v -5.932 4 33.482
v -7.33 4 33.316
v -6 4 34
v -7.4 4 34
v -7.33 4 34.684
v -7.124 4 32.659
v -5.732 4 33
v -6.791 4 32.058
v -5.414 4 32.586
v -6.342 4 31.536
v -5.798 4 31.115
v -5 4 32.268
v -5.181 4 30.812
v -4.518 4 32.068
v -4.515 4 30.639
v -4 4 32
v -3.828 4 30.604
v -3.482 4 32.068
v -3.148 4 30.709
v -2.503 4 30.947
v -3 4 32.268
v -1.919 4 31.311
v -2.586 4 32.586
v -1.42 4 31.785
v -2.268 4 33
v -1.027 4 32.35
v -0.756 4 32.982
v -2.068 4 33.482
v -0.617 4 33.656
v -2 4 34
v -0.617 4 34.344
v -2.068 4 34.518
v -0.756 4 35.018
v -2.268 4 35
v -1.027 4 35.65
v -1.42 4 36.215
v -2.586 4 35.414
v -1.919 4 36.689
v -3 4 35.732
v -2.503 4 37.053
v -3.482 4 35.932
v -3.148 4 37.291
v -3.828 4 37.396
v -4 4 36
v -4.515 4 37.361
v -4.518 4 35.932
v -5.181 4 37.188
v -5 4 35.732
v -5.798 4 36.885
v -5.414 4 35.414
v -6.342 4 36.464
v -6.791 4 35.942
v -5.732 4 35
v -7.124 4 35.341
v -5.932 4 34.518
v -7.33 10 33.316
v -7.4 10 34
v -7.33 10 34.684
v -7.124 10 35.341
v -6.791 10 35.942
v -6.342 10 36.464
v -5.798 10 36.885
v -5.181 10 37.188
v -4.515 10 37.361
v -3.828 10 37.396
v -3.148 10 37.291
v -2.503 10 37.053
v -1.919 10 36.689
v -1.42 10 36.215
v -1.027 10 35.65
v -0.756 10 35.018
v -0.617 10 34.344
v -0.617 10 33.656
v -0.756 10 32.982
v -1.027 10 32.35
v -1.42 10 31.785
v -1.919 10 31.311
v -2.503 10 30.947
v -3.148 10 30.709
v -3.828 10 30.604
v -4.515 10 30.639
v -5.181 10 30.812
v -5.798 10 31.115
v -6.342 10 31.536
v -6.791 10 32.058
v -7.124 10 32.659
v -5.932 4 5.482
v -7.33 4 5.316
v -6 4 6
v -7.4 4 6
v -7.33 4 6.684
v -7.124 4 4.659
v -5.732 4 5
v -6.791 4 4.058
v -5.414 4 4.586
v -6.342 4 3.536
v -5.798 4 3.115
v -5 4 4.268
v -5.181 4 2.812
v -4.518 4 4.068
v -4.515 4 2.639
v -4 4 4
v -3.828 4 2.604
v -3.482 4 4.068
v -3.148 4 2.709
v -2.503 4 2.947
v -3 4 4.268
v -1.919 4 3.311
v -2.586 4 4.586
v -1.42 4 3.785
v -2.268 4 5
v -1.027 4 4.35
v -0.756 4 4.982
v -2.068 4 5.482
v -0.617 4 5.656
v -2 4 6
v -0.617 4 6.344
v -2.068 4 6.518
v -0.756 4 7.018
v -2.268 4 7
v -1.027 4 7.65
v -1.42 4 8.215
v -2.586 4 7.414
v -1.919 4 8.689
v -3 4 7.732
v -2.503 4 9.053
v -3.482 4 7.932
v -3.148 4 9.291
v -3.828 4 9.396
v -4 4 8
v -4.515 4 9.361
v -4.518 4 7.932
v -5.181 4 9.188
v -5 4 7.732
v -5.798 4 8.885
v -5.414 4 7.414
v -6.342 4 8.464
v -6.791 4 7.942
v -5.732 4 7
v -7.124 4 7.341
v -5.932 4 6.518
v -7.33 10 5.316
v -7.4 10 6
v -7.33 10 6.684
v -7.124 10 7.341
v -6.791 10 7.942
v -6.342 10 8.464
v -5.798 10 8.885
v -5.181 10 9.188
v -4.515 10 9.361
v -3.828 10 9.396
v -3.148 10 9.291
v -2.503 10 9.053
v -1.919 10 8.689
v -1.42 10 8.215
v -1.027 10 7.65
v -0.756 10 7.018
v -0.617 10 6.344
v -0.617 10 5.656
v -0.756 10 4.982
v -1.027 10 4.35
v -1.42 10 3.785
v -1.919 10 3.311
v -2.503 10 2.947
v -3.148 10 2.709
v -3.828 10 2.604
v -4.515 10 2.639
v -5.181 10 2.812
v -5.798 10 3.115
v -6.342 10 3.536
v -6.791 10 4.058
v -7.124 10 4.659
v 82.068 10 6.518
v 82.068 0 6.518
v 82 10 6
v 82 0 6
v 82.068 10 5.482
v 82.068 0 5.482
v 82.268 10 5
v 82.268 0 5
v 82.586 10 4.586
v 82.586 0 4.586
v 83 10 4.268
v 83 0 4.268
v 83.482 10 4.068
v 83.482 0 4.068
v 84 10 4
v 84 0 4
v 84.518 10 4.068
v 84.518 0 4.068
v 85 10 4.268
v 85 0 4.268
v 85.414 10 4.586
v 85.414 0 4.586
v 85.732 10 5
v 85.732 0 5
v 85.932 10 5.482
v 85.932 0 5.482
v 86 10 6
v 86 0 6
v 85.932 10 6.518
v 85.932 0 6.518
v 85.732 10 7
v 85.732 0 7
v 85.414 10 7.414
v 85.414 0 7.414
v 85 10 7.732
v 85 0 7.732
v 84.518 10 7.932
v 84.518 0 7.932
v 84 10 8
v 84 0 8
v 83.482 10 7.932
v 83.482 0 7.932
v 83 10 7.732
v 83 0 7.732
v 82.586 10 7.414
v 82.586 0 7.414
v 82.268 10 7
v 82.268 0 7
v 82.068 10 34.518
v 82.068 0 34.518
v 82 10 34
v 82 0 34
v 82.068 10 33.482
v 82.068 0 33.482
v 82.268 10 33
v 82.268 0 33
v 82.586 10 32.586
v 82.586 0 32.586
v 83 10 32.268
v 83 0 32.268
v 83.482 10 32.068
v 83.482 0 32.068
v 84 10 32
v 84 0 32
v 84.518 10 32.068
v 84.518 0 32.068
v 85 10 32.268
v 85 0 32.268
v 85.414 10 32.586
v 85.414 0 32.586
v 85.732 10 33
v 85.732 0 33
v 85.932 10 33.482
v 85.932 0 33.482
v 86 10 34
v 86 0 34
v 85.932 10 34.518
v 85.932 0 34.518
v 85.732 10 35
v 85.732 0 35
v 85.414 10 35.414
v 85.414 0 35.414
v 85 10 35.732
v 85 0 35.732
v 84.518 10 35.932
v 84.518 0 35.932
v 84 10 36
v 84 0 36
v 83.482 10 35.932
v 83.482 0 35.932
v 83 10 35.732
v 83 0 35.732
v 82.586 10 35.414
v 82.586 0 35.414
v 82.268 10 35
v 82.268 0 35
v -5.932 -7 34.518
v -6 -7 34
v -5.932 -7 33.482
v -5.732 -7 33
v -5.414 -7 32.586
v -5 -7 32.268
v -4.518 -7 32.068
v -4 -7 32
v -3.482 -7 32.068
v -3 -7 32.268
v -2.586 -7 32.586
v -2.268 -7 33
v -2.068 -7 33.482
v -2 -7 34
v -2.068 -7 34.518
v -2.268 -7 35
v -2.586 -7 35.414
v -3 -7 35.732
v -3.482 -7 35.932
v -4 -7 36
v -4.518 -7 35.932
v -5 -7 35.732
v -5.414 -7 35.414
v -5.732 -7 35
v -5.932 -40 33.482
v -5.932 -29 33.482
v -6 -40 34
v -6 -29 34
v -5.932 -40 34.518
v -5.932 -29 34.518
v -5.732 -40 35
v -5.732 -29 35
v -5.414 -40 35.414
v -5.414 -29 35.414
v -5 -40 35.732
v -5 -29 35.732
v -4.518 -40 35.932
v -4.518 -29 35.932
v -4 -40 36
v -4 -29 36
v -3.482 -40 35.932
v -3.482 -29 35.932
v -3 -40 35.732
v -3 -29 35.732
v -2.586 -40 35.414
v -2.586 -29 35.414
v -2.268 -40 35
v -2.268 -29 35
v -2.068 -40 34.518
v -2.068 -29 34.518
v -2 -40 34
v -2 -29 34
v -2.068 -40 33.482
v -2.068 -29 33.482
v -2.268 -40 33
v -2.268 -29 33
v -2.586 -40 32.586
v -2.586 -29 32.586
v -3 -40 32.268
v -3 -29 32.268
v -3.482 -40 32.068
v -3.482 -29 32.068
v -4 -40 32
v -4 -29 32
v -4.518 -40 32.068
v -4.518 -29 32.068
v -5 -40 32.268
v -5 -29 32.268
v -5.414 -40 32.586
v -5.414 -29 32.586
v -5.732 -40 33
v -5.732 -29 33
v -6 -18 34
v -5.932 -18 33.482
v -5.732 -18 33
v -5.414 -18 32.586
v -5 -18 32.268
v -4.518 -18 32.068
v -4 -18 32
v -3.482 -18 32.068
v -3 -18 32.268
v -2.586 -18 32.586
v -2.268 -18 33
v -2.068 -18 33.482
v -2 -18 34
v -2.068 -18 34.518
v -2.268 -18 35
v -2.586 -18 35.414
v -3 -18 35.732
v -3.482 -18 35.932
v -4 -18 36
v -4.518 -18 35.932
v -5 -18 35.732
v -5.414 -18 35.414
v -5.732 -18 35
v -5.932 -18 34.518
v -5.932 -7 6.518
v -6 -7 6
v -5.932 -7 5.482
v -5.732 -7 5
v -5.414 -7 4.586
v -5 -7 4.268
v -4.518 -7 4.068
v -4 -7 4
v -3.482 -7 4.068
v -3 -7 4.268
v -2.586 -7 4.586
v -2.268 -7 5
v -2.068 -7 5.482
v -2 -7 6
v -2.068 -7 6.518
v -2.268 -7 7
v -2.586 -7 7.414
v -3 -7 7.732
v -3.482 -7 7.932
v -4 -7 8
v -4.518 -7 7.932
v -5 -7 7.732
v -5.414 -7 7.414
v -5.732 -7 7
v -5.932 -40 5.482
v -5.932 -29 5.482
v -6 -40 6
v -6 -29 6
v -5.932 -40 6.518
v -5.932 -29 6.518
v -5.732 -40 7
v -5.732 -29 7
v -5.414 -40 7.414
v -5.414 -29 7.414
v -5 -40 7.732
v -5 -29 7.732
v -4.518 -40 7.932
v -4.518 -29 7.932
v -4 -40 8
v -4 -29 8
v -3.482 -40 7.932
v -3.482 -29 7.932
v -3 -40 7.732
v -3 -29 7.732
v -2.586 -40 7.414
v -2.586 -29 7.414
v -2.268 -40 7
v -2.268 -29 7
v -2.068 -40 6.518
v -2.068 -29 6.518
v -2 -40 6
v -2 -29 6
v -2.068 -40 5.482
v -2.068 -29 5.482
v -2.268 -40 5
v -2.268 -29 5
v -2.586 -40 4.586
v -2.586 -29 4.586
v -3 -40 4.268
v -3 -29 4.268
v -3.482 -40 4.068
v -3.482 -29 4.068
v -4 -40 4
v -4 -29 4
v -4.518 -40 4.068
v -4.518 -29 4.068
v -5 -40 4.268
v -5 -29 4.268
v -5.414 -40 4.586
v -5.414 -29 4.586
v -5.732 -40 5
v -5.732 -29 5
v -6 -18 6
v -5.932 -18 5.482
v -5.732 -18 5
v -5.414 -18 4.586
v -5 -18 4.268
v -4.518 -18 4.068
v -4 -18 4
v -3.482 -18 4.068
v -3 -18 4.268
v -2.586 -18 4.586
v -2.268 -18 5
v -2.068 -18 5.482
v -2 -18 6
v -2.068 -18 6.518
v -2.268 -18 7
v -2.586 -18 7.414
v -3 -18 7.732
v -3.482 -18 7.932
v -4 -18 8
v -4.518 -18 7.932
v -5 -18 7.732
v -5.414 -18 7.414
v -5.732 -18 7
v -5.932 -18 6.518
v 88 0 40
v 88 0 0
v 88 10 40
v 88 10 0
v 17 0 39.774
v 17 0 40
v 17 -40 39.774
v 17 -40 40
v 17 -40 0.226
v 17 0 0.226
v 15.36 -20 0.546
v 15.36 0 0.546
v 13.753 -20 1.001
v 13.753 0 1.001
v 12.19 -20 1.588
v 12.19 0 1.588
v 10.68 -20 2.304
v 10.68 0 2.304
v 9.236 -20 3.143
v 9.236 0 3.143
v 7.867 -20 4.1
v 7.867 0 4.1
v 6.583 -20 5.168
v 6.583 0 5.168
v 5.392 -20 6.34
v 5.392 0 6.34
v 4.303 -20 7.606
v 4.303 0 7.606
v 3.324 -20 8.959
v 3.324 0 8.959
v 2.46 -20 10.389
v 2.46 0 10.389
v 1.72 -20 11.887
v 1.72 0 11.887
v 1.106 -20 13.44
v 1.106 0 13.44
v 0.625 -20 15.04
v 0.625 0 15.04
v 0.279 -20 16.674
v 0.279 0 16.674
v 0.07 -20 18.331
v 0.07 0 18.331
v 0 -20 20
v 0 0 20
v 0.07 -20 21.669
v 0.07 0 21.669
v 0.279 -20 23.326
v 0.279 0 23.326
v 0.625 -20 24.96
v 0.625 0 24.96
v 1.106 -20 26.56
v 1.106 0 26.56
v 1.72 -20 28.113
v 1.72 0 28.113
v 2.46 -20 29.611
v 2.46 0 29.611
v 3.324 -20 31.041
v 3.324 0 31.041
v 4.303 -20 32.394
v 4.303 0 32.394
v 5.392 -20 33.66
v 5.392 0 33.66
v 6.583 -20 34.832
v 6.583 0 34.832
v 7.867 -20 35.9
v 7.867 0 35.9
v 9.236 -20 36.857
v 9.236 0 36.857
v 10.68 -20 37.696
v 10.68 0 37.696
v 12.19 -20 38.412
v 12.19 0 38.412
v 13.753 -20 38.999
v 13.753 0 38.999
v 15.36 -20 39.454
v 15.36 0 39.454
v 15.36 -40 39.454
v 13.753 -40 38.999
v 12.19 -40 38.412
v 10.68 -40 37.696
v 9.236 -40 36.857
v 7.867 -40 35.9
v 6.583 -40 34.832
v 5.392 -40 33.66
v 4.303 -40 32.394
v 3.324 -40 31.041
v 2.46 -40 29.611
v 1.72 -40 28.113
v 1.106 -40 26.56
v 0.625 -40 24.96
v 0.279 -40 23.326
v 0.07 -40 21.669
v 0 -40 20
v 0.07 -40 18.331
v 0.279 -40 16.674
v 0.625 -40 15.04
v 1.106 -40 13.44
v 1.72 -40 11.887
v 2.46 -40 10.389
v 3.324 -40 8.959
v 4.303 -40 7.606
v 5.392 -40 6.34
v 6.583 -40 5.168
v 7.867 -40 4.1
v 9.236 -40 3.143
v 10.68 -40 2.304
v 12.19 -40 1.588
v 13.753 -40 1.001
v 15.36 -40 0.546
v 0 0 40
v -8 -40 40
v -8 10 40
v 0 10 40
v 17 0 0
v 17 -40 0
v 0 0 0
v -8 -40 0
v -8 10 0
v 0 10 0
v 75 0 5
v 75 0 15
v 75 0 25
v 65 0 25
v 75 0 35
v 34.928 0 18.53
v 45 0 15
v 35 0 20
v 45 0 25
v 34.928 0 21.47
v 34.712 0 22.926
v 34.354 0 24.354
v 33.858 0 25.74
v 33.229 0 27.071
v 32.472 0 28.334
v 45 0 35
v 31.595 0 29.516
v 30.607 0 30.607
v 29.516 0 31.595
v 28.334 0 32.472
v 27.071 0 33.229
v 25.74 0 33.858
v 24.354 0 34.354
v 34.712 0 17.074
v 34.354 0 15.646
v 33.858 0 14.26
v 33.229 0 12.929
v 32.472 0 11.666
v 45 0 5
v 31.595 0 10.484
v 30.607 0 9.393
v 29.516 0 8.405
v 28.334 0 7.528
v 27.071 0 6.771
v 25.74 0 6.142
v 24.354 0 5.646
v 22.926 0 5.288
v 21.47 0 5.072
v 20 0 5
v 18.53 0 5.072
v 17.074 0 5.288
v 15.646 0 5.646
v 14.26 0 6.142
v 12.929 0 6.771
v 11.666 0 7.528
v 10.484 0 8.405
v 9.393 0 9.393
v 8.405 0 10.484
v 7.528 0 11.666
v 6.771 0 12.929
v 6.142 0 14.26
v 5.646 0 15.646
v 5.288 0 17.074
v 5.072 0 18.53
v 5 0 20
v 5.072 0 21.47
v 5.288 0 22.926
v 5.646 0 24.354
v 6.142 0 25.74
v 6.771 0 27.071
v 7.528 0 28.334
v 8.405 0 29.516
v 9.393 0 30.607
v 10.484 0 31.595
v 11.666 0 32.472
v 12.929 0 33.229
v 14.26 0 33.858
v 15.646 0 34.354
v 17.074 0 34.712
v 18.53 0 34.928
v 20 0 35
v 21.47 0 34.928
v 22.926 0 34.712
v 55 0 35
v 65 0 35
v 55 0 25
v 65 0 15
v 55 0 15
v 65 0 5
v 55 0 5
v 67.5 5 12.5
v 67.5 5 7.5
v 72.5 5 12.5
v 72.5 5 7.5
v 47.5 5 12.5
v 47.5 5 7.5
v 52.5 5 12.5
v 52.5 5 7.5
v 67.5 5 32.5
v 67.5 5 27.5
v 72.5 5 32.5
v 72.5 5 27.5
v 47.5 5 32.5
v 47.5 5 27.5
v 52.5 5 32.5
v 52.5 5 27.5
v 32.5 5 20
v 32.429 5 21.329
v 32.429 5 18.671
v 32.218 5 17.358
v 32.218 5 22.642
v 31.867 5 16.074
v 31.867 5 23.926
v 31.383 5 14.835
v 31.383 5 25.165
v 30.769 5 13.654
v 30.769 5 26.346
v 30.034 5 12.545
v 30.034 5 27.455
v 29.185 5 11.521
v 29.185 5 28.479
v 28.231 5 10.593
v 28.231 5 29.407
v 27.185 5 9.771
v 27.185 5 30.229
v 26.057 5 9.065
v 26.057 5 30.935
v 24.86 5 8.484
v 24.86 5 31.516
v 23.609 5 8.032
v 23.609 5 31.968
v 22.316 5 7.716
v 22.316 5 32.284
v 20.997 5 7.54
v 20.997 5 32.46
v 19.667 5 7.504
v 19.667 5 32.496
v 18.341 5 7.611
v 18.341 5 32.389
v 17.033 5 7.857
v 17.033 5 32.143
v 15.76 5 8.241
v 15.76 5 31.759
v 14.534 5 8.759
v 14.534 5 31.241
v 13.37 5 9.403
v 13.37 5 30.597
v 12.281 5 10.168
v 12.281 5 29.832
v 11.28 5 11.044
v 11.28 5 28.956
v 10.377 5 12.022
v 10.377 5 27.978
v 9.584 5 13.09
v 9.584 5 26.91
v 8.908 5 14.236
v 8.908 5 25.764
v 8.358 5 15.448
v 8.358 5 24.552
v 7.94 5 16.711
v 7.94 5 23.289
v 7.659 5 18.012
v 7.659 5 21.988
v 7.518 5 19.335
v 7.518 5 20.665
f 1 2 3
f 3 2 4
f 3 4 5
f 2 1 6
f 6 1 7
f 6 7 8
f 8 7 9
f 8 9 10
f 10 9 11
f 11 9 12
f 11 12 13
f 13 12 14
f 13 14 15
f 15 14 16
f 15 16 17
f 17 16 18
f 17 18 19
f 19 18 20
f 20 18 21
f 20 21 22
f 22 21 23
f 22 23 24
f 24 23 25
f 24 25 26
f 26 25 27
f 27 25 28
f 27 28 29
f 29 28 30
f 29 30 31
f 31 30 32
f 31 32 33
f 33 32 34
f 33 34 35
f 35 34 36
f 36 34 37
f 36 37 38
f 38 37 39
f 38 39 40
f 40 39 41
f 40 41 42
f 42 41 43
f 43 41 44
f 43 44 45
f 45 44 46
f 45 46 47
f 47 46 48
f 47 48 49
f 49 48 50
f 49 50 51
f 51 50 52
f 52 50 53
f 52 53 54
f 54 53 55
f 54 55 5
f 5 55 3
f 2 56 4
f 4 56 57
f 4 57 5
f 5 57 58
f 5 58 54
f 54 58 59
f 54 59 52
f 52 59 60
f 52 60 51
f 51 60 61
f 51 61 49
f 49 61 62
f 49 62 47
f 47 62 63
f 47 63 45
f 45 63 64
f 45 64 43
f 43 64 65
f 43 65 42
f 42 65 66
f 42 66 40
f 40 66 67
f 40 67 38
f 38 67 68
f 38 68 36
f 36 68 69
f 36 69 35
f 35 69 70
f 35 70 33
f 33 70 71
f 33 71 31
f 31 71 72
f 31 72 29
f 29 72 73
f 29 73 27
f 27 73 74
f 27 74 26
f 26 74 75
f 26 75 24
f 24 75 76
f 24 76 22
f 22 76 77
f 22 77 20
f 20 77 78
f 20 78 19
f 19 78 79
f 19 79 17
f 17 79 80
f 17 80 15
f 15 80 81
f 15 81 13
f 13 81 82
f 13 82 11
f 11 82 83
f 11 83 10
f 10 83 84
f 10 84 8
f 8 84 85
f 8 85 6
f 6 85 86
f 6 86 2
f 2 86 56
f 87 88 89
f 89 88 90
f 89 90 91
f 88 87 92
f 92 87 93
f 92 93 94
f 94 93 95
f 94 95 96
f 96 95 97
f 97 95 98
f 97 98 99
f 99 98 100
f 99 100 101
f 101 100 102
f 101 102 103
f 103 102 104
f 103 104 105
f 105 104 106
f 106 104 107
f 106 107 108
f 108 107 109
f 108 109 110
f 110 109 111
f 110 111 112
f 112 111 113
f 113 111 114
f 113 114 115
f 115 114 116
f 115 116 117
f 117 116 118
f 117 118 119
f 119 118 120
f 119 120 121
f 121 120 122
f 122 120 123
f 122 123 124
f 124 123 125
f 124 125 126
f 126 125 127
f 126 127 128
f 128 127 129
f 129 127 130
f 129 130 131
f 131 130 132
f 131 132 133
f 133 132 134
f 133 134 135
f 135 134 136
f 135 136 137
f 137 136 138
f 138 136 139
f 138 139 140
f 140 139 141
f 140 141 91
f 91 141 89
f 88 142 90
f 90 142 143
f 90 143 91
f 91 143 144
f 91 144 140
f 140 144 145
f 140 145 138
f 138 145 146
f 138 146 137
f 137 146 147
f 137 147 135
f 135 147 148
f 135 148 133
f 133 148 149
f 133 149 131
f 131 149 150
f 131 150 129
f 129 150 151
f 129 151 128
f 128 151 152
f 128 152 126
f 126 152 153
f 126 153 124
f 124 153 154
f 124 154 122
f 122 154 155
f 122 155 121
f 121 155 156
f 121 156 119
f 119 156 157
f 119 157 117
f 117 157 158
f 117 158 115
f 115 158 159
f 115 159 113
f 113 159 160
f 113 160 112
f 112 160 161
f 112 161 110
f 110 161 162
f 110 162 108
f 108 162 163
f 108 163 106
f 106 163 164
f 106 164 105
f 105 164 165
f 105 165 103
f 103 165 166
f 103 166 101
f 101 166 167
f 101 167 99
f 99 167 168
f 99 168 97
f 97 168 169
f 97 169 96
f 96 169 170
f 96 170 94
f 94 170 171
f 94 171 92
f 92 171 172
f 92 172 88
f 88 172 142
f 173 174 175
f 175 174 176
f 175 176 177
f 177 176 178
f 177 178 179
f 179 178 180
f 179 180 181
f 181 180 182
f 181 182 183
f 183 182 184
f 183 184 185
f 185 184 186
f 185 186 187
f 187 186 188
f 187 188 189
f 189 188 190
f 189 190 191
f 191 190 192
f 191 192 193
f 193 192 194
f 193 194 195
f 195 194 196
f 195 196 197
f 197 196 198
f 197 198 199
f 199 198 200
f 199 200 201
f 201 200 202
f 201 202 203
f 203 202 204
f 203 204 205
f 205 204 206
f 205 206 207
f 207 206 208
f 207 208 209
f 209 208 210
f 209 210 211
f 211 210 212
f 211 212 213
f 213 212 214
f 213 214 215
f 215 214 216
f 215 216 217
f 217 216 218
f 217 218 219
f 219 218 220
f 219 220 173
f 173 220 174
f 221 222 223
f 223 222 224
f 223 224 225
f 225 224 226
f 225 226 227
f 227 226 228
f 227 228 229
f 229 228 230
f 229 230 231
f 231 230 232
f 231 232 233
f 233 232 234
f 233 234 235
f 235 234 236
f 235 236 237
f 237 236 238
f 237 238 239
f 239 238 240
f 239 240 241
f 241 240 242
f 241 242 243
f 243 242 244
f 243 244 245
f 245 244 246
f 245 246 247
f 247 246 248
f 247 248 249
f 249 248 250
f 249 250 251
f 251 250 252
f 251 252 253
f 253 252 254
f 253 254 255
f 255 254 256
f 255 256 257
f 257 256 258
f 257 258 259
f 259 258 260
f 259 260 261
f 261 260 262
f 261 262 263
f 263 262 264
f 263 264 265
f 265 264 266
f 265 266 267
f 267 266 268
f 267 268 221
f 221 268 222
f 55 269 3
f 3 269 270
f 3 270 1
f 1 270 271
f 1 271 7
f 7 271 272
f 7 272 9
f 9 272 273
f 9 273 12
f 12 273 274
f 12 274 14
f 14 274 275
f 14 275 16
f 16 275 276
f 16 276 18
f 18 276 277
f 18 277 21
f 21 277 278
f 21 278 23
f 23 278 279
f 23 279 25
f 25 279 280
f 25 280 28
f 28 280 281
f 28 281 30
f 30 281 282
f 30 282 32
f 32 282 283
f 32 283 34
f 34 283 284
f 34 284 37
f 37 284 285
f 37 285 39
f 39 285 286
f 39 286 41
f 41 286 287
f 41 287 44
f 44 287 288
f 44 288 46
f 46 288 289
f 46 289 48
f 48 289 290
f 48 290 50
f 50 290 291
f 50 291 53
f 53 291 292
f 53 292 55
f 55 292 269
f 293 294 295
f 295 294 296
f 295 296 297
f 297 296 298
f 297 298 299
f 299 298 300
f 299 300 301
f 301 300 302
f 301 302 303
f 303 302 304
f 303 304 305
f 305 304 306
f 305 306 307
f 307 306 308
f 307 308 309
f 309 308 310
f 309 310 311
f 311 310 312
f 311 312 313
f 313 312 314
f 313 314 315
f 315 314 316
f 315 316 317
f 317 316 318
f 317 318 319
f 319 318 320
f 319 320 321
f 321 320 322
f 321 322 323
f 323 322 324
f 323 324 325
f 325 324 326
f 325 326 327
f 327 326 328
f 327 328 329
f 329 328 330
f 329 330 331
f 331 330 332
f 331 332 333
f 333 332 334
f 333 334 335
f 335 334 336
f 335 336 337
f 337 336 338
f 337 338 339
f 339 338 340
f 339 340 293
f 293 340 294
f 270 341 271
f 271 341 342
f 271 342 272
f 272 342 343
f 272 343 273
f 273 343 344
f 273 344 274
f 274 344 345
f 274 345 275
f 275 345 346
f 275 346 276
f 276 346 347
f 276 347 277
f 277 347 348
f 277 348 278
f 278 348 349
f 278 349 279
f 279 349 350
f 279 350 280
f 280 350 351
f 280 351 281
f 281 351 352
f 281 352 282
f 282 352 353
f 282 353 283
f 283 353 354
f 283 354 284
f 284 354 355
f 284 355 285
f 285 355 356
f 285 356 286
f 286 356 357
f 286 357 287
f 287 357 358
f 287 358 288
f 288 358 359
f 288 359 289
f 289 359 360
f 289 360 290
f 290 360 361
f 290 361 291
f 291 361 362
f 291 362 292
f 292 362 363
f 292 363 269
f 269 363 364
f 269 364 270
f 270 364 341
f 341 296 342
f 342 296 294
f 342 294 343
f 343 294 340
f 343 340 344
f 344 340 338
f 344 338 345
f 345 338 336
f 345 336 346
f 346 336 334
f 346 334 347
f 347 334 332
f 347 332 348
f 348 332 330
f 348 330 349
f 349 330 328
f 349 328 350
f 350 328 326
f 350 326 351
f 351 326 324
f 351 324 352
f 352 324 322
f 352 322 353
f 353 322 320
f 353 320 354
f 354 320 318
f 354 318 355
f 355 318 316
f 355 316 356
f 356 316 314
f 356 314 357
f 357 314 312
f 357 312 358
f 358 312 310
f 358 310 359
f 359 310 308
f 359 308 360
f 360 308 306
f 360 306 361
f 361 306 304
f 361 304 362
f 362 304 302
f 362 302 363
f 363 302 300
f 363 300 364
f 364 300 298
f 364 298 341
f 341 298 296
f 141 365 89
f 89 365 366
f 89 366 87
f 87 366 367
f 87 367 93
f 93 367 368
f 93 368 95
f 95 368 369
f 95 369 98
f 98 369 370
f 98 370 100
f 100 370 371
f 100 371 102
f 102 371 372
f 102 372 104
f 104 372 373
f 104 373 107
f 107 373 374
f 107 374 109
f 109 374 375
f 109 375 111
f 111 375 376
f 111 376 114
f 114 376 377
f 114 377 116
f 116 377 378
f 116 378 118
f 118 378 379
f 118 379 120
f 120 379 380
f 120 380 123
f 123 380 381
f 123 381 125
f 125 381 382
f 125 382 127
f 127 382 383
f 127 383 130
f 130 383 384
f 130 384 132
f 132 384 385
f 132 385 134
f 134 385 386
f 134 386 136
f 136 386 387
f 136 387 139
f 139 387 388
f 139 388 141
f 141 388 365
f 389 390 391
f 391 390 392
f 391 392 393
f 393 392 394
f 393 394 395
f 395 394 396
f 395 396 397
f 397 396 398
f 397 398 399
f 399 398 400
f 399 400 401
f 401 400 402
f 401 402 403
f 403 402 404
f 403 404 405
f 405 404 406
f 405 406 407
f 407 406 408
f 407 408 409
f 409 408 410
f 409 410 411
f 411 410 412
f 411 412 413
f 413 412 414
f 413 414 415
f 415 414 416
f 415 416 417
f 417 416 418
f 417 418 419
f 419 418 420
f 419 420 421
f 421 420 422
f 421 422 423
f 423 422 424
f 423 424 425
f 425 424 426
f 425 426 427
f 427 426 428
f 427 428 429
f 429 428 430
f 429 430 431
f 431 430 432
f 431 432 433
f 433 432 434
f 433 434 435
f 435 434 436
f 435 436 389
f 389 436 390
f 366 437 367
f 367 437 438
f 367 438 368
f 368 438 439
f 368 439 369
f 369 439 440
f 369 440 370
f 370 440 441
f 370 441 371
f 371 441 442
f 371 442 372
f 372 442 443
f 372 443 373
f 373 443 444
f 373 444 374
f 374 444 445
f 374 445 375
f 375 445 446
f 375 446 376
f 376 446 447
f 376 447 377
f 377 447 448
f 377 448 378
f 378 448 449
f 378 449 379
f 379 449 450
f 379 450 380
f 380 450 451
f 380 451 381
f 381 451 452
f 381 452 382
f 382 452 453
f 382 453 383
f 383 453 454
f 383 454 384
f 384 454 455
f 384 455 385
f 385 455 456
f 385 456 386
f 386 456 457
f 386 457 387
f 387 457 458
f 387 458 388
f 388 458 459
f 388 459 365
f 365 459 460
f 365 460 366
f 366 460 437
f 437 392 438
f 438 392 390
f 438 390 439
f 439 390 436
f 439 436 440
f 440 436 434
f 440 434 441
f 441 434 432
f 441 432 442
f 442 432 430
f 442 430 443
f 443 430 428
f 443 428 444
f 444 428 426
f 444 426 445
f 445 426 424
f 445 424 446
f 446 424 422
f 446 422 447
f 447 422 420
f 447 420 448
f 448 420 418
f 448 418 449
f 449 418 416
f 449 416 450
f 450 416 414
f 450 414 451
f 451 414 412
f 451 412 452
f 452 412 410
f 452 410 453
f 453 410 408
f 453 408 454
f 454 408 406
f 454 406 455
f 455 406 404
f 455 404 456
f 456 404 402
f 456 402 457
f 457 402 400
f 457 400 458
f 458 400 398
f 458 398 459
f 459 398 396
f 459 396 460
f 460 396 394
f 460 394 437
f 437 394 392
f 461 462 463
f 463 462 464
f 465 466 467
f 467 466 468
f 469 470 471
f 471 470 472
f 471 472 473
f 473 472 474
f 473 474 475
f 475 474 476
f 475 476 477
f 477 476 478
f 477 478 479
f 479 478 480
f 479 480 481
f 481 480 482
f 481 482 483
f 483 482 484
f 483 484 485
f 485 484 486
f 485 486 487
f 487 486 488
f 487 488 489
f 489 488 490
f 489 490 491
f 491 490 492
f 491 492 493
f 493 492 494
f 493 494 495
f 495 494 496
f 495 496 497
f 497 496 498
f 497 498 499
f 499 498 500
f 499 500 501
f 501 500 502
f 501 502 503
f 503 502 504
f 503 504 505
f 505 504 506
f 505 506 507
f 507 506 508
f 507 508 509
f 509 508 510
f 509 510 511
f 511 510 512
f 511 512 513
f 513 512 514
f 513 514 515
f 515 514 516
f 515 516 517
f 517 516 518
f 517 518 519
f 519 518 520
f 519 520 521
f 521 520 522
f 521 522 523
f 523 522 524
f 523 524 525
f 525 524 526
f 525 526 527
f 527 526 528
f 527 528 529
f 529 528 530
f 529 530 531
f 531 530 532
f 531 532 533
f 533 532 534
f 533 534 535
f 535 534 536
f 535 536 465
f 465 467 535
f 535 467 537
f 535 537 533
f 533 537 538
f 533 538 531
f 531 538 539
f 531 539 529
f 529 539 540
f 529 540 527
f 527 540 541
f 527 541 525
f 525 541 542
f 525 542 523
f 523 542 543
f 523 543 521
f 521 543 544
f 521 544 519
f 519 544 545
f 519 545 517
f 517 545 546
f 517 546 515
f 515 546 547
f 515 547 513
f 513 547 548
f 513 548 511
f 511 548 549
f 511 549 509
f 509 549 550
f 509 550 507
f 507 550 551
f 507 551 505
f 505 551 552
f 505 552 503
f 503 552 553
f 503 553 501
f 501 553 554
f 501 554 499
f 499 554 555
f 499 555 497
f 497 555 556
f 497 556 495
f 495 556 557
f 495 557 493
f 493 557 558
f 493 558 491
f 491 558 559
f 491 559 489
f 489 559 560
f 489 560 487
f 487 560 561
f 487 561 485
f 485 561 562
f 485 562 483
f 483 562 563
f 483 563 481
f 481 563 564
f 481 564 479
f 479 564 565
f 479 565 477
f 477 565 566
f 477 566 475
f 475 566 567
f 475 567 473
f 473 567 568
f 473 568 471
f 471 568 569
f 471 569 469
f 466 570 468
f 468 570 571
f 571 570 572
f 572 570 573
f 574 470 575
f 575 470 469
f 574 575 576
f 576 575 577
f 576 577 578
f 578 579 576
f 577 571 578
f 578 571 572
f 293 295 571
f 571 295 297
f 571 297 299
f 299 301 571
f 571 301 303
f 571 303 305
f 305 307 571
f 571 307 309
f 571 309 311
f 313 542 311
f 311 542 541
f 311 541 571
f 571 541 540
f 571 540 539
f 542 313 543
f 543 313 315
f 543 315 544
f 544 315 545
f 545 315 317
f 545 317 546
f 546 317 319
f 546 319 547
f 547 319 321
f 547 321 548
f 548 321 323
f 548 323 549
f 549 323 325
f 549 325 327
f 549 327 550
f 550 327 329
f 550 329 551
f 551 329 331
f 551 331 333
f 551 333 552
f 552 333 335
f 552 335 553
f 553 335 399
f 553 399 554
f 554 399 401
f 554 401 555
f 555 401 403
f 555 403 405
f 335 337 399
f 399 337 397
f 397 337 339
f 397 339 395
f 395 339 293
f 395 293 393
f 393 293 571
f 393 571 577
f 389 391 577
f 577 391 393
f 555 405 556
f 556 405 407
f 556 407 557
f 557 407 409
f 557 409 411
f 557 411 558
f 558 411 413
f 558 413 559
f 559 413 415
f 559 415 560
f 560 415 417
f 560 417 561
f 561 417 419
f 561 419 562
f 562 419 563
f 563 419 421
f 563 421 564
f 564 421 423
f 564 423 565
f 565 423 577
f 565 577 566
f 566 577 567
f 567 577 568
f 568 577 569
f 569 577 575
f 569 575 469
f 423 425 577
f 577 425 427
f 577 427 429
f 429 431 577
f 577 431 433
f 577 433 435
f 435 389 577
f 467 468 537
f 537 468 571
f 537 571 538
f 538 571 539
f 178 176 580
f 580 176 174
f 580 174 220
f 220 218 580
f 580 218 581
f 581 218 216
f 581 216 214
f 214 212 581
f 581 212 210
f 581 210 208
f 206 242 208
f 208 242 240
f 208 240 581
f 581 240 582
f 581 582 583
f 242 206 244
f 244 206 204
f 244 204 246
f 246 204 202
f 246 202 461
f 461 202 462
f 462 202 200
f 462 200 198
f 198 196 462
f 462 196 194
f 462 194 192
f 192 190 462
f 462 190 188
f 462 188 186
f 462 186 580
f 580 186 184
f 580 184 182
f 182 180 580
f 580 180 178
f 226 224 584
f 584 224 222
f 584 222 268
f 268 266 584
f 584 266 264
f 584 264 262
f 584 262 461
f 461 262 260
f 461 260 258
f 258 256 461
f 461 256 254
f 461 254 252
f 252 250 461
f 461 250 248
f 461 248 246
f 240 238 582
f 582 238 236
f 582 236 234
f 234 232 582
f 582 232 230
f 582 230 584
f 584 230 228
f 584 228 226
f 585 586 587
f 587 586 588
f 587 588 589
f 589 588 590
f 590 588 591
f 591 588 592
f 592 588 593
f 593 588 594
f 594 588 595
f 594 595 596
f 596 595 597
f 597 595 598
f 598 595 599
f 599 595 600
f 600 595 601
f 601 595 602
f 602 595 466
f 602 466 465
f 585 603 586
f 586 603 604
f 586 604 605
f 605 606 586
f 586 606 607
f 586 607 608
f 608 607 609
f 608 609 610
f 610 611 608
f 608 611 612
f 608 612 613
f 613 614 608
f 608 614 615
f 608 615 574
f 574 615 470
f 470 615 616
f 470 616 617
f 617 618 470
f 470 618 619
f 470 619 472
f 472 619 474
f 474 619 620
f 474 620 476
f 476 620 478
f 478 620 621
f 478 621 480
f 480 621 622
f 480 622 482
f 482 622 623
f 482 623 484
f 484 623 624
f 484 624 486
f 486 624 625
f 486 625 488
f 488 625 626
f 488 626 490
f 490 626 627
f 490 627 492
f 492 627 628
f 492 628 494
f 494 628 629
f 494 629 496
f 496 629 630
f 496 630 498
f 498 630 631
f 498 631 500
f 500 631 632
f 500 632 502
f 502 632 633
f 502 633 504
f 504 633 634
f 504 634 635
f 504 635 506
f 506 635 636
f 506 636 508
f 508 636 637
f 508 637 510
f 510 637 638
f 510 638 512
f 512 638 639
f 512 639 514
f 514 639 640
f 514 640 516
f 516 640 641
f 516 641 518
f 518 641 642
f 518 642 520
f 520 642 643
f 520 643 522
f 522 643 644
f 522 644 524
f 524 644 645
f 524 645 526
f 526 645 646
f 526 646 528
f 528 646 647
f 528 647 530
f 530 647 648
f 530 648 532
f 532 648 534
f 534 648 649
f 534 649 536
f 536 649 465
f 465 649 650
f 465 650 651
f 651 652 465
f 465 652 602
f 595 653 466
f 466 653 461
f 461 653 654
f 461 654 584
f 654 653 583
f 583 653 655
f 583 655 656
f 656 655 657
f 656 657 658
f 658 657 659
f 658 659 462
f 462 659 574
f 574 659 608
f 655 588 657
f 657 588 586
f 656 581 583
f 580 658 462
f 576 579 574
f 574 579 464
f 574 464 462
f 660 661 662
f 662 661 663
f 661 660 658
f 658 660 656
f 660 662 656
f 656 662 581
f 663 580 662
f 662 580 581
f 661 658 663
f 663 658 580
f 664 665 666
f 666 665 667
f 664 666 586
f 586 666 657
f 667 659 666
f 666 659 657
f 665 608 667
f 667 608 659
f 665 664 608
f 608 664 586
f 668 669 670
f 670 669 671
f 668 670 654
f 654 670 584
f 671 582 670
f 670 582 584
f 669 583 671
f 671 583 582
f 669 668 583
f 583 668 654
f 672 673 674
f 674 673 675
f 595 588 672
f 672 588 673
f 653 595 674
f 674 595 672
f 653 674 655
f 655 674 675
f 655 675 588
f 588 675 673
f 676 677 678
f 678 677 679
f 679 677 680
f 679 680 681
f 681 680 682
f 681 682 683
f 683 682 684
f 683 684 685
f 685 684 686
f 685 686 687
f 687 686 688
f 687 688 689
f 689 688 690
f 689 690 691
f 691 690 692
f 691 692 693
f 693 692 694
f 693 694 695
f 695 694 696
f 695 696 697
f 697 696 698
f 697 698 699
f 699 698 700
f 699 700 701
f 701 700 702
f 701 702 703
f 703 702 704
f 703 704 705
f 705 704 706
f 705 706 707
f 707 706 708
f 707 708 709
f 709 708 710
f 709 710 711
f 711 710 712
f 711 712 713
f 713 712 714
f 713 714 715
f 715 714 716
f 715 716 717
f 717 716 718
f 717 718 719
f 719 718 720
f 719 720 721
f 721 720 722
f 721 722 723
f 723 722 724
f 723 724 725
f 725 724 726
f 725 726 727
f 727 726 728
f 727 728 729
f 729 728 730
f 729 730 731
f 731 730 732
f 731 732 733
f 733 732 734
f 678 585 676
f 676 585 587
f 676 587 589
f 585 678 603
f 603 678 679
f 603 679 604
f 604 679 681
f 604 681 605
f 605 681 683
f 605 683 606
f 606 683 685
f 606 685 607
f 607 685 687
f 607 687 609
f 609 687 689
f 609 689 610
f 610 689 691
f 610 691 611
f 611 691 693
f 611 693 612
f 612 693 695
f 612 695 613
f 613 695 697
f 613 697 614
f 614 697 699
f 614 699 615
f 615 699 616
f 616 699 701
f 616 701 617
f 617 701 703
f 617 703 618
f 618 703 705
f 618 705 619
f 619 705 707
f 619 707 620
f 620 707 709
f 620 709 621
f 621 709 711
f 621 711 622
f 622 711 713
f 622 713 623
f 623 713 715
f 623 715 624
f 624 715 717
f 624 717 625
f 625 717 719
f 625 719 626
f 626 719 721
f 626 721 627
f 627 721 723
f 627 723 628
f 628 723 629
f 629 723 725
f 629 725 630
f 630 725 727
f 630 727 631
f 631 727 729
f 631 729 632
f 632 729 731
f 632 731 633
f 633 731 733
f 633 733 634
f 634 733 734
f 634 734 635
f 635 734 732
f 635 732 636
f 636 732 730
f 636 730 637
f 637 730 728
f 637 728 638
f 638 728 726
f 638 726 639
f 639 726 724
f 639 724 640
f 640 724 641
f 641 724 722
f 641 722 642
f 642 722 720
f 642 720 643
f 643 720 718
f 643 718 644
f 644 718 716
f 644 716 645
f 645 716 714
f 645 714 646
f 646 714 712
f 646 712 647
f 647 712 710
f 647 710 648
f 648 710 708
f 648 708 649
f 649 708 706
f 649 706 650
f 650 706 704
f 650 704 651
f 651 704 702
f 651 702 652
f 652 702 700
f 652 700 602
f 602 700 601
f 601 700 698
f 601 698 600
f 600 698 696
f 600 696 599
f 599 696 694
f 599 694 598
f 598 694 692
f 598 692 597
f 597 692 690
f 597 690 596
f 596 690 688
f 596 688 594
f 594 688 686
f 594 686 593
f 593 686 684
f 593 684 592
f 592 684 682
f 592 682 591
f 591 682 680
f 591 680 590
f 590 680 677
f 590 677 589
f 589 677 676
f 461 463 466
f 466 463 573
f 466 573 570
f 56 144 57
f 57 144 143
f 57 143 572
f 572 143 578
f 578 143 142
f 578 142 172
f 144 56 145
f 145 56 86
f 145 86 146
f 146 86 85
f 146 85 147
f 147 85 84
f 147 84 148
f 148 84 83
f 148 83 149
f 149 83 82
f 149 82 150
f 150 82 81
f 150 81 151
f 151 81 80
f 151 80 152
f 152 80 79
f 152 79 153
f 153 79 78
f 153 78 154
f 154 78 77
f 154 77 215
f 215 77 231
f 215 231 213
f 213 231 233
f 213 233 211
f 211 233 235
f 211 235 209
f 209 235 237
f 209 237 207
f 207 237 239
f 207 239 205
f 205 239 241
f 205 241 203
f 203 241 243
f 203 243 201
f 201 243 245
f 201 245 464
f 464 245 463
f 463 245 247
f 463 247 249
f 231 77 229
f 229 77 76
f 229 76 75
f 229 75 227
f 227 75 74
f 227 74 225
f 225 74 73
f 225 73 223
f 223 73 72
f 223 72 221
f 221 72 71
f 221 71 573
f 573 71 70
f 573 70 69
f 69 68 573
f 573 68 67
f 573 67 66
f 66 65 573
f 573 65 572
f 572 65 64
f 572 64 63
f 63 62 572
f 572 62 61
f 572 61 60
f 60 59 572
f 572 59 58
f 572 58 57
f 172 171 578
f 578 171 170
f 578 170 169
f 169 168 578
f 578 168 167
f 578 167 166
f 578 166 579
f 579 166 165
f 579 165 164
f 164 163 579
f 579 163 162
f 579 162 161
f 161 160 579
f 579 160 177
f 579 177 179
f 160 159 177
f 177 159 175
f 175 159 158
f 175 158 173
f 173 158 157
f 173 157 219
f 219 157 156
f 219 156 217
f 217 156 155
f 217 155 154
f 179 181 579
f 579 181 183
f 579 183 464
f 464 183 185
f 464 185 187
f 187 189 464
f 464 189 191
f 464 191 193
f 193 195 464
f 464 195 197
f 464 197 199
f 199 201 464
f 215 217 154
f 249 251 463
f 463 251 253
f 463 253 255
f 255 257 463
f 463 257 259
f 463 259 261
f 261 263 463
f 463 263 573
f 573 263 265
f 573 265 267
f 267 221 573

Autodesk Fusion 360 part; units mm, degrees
sketch "baseplate" plane through (0, 0, 0) normal (0, 1, 0) x (1, 0, 0)
  line L0 (0, 0) -> (80, 0)
  line L1 (80, 0) -> (80, -40)
  line L2 (80, -40) -> (0, -40)
  line L3 (0, -40) -> (0, 0)
  dimension "d1" = 40
  dimension "d2" = 80
extrude "Extrude1" add sketch "baseplate" along normal blind 10
sketch "outside_pryamid" plane through (0, 0, 0) normal (0, 1, 0) x (1, 0, 0)
  line L0 (45, -35) -> (55, -35)
  line L1 (55, -35) -> (55, -25)
  line L2 (55, -25) -> (45, -25)
  line L3 (45, -25) -> (45, -35)
  line L4 (65, -35) -> (75, -35)
  line L5 (75, -35) -> (75, -25)
  line L6 (75, -25) -> (65, -25)
  line L7 (65, -25) -> (65, -35)
  line L8 (45, -15) -> (55, -15)
  line L9 (55, -15) -> (55, -5)
  line L10 (55, -5) -> (45, -5)
  line L11 (45, -5) -> (45, -15)
  line L12 (65, -15) -> (75, -15)
  line L13 (75, -15) -> (75, -5)
  line L14 (75, -5) -> (65, -5)
  line L15 (65, -5) -> (65, -15)
  circle A0 centre (20, -20) radius 15
  dimension "d40" = 30
ref_plane "WorkPlane1" through (0, 5, 0) normal (0, 1, 0) x (0, 0, 1)
sketch "inside_pryamid" plane through (0, 5, 0) normal (0, 1, 0) x (1, 0, 0)
  line L0 (47.5, -7.5) -> (47.5, -10)
  line L1 (47.5, -12.5) -> (52.5, -12.5)
  line L2 (52.5, -7.5) -> (47.5, -7.5)
  line L3 (47.5, -10) -> (47.5, -12.5)
  line L4 (52.5, -12.5) -> (52.5, -7.5)
  line L5 (67.5, -10) -> (67.5, -12.5)
  line L6 (67.5, -12.5) -> (72.5, -12.5)
  line L7 (67.5, -7.5) -> (67.5, -10)
  line L8 (72.5, -12.5) -> (72.5, -7.5)
  line L9 (72.5, -7.5) -> (67.5, -7.5)
  line L10 (67.5, -10) -> (67.5, -12.5)
  line L11 (67.5, -12.5) -> (72.5, -12.5)
  line L12 (72.5, -12.5) -> (72.5, -7.5)
  line L13 (47.5, -7.5) -> (47.5, -10)
  line L14 (52.5, -12.5) -> (52.5, -7.5)
  line L15 (72.5, -7.5) -> (67.5, -7.5)
  line L16 (47.5, -10) -> (47.5, -12.5)
  line L17 (52.5, -7.5) -> (47.5, -7.5)
  line L18 (67.5, -7.5) -> (67.5, -10)
  line L19 (47.5, -12.5) -> (52.5, -12.5)
  line L20 (72.5, -32.5) -> (72.5, -27.5)
  line L21 (72.5, -27.5) -> (67.5, -27.5)
  line L22 (67.5, -30) -> (67.5, -32.5)
  line L23 (72.5, -27.5) -> (67.5, -27.5)
  line L24 (67.5, -27.5) -> (67.5, -30)
  line L25 (47.5, -30) -> (47.5, -32.5)
  line L26 (67.5, -27.5) -> (67.5, -30)
  line L27 (67.5, -30) -> (67.5, -32.5)
  line L28 (67.5, -32.5) -> (72.5, -32.5)
  line L29 (72.5, -32.5) -> (72.5, -27.5)
  line L30 (47.5, -32.5) -> (52.5, -32.5)
  line L31 (47.5, -32.5) -> (52.5, -32.5)
  line L32 (67.5, -32.5) -> (72.5, -32.5)
  line L33 (52.5, -32.5) -> (52.5, -27.5)
  line L34 (52.5, -27.5) -> (47.5, -27.5)
  line L35 (52.5, -27.5) -> (47.5, -27.5)
  line L36 (47.5, -30) -> (47.5, -32.5)
  line L37 (52.5, -32.5) -> (52.5, -27.5)
  line L38 (47.5, -27.5) -> (47.5, -30)
  line L39 (47.5, -27.5) -> (47.5, -30)
  circle A0 centre (20, -20) radius 12.5
  dimension "d42" = 25
loft "Loft9" cut profiles "inside_pryamid", "outside_pryamid" section 1 contours A0 section 2 contours A0
loft "Loft3" cut profiles "outside_pryamid", "inside_pryamid" section 1 contours L0 L1 L2 L3 section 2 contours L25 L30 L31 L33 L34 L35 L36 L37 L38 L39
loft "Loft4" cut profiles "inside_pryamid", "outside_pryamid" section 1 contours L20 L21 L22 L23 L24 L26 L27 L28 L29 L32 section 2 contours L4 L5 L6 L7
loft "Loft7" cut profiles "inside_pryamid", "outside_pryamid" section 1 contours L0 L1 L2 L3 L4 L13 L14 L16 L17 L19 section 2 contours L8 L9 L10 L11
loft "Loft8" cut profiles "inside_pryamid", "outside_pryamid" section 1 contours L5 L6 L7 L8 L9 L10 L11 L12 L15 L18 section 2 contours L12 L13 L14 L15
sketch "sidewall" plane through (0, 0, 0) normal (0, 1, 0) x (1, 0, 0)
  line L0 (-8, 0) -> (-8, -40)
  circle A0 centre (20, -20) radius 20
  line L1 (17, -20) -> (17, -40)
  line L2 (-8, -40) -> (17, -40)
  line L3 (17, -20) -> (17, 0)
  line L4 (-8, 0) -> (17, 0)
  dimension "d43" = 20
  dimension "d44" = 20
extrude "Extrude2" add sketch "sidewall" along normal blind -40 and the other way blind -10 contours L0 A0 L1 L2 L3 L4
sketch "sidemount" plane through (0, 0, 0) normal (0, 1, 0) x (1, 0, 0)
  line L0 (80, 0) -> (88, 0)
  line L1 (88, 0) -> (88, -40)
  line L2 (88, -40) -> (80, -40)
  line L3 (80, -40) -> (80, 0)
extrude "Extrude3" add sketch "sidemount" along normal blind 10
sketch "holes" plane through (0, 0, 0) normal (0, 1, 0) x (1, 0, 0)
  circle A0 centre (-4, -34) radius 2
  circle A1 centre (-4, -6) radius 2
  circle A2 centre (-4, -34) radius 3.4
  circle A3 centre (-4, -6) radius 3.4
  line L0 (88, 0) -> (84, 0)
  line L1 (84, 0) -> (84, -6)
  line L2 (84, -6) -> (88, -6)
  line L3 (88, -6) -> (88, 0)
  circle A4 centre (84, -34) radius 2
  circle A5 centre (84, -6) radius 2
  dimension "d19" = 4
  dimension "d20" = 4
  dimension "d21" = 6.8
  dimension "d22" = 6.8
  dimension "d25" = 4
  dimension "d26" = 6
  dimension "d27" = 4
  dimension "d28" = 4
extrude "Extrude4" cut sketch "holes" against normal blind 50 contours A0 | A1
extrude "Extrude5" cut sketch "holes" along normal blind 40 contours L1 L2 A5 | L1 L2 A5 | A4
extrude "Extrude6" cut sketch "holes" along normal through all and the other way blind 44 contours A0 | A1
extrude "Extrude7" cut sketch "holes" along normal blind 10 and the other way blind -4 contours A2 | A3
